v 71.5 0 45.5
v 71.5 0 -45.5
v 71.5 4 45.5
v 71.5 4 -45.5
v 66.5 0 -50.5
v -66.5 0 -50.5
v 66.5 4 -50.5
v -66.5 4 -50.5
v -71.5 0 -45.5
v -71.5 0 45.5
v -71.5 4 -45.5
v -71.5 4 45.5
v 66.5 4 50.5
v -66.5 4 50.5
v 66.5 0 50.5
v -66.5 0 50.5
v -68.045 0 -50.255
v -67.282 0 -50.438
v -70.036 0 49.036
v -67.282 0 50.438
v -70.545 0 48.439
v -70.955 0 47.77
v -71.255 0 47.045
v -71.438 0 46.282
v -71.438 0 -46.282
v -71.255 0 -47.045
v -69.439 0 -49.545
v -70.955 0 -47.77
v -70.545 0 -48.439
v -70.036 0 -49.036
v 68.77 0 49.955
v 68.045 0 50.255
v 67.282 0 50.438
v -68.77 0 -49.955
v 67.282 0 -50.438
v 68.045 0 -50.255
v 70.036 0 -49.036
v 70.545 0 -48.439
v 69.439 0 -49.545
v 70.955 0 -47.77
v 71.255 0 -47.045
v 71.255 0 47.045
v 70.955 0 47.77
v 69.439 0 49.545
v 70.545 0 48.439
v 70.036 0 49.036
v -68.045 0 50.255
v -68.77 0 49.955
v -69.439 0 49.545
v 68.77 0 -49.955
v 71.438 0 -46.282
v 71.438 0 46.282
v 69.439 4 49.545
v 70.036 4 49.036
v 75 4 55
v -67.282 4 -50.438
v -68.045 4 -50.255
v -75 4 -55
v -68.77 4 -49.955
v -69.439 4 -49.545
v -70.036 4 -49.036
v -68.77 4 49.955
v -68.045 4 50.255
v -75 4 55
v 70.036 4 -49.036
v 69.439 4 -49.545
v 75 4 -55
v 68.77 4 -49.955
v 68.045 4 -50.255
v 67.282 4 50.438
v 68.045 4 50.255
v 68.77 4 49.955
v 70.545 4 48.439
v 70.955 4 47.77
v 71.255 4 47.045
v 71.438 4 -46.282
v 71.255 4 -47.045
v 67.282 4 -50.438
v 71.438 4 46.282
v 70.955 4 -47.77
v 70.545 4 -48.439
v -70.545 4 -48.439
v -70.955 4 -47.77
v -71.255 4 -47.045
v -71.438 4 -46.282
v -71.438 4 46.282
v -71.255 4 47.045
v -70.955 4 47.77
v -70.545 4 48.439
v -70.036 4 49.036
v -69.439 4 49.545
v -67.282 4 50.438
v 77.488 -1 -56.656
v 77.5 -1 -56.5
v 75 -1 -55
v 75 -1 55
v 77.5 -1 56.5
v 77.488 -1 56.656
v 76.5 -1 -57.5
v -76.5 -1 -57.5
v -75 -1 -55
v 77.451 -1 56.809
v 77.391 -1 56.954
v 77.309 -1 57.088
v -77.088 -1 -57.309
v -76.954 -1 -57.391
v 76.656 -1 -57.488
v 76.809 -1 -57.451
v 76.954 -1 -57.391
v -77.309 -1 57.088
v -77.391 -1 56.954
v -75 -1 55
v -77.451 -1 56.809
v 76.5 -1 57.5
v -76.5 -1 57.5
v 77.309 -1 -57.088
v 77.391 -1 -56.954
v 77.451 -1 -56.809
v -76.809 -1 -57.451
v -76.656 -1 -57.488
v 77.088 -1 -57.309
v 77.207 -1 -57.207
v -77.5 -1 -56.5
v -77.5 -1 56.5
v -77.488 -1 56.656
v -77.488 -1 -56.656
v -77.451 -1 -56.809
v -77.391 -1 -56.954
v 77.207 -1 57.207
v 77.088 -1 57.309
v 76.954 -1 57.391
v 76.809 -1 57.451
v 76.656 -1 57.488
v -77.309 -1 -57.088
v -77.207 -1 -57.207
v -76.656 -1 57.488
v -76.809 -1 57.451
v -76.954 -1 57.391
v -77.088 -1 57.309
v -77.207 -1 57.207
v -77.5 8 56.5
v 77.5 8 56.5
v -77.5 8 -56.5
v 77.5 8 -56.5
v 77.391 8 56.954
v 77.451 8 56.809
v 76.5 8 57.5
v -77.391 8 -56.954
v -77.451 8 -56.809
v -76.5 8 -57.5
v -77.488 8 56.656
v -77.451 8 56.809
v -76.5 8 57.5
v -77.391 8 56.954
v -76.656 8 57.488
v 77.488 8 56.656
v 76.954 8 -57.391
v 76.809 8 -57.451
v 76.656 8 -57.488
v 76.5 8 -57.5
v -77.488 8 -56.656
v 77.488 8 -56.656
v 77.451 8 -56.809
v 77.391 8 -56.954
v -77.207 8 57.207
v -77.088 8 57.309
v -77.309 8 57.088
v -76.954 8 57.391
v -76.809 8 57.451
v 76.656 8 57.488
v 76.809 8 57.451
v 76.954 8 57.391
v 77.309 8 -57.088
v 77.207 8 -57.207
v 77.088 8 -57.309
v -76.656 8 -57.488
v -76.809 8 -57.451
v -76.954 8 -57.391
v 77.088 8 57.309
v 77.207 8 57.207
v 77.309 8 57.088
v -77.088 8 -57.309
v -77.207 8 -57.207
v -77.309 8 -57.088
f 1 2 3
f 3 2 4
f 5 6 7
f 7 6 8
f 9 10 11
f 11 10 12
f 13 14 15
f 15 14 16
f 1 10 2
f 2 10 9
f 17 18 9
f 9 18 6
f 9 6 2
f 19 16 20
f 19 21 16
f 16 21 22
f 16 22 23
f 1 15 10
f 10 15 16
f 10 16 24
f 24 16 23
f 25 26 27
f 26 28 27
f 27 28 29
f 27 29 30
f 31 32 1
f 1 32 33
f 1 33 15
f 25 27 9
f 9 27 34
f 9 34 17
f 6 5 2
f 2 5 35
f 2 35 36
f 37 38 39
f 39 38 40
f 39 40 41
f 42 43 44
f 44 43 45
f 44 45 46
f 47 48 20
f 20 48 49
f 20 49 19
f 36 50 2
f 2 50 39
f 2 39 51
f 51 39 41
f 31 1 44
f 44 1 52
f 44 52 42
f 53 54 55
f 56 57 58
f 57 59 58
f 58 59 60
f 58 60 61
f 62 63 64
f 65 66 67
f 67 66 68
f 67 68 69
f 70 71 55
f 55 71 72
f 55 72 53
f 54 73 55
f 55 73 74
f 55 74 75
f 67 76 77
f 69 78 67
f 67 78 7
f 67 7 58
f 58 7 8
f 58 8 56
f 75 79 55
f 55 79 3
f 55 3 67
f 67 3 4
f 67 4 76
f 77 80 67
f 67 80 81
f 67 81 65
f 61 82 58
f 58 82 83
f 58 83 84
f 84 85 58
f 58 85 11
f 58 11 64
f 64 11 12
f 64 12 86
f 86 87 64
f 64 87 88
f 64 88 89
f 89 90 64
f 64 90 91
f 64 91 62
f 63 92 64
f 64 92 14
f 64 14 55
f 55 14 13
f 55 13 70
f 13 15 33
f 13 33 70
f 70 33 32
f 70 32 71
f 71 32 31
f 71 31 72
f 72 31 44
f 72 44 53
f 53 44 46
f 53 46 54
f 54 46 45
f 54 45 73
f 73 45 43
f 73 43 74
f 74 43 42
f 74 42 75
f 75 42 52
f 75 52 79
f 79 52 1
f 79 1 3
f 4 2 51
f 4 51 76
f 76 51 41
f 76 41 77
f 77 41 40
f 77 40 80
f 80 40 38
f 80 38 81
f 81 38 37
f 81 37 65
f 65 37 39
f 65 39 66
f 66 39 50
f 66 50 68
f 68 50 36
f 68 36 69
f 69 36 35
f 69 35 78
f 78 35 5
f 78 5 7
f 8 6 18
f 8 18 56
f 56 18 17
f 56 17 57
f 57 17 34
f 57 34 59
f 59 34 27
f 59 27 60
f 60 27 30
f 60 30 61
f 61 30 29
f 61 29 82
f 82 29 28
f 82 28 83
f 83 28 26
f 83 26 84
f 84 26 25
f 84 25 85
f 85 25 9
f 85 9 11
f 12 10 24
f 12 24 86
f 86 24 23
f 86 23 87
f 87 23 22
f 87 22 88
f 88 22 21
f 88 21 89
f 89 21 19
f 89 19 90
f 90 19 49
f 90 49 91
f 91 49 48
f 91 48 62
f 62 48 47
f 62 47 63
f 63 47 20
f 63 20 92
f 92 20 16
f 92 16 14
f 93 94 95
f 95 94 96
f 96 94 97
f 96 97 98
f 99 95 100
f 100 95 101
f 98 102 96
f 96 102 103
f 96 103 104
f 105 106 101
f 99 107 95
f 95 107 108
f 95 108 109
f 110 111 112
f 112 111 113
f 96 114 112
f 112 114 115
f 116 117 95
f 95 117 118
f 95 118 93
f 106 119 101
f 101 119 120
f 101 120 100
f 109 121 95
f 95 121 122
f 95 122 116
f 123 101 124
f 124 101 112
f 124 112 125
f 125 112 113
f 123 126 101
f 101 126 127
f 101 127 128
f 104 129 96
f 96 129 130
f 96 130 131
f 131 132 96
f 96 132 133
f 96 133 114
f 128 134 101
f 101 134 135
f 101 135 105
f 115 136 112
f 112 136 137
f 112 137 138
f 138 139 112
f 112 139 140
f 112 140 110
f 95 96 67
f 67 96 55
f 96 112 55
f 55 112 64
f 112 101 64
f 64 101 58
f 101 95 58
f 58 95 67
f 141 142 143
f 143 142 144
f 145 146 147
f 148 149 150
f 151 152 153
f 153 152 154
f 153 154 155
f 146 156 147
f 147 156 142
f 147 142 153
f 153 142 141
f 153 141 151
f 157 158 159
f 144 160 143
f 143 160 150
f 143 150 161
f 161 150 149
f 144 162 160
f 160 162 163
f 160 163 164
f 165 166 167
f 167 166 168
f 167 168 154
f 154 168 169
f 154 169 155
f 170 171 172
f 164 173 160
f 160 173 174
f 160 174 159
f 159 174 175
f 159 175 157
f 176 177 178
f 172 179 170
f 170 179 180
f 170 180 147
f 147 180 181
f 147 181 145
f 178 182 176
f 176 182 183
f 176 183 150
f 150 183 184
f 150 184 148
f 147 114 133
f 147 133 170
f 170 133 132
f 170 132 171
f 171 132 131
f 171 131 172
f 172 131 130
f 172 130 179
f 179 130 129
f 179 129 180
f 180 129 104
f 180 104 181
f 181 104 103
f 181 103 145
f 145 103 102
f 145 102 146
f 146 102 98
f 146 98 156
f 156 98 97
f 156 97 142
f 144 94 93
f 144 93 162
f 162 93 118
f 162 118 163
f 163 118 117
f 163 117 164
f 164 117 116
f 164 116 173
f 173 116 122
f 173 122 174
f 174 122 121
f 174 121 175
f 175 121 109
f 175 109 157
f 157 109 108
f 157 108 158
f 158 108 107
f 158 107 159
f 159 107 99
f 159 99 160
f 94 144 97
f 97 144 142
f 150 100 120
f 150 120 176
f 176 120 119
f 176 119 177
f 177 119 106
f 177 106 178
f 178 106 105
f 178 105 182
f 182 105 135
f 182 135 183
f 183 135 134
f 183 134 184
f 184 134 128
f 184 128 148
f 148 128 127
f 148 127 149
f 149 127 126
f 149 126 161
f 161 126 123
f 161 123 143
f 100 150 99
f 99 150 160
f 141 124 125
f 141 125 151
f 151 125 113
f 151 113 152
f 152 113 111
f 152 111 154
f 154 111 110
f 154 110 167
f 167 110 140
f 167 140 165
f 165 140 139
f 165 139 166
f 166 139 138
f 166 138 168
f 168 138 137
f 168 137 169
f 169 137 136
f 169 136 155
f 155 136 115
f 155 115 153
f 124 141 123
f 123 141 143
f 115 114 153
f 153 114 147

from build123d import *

# Parameters (mm, degrees)
SKETCH1_W           = 143
SKETCH1_H           = 101
BOSS_EXTRUDE1_DEPTH = 4
SKETCH2_W           = 155
SKETCH2_H           = 115
BOSS_EXTRUDE2_DEPTH = 4
FILLET1_R           = 5
FILLET2_R           = 1
SKETCH3_W           = 150
SKETCH3_H           = 110
BOSS_EXTRUDE3_DEPTH = 5


with BuildPart() as part:
    # Sketch1 → Boss-Extrude1 (new body)
    with BuildSketch(Plane(origin=(0, 0, 0), x_dir=(1, 0, 0), z_dir=(0, 1, 0))):
        Rectangle(SKETCH1_W, SKETCH1_H)
    extrude(amount=BOSS_EXTRUDE1_DEPTH)

    # Sketch2 → Boss-Extrude2 (add)
    with BuildSketch(Plane(origin=(0, 4, 0), x_dir=(1, 0, 0), z_dir=(0, 1, 0))):
        Rectangle(SKETCH2_W, SKETCH2_H)
    extrude(amount=BOSS_EXTRUDE2_DEPTH)

    # Fillet1
    fillet1_edges = [part.edges().sort_by_distance(p)[0] for p in [
        (71.5, 2, 50.5),
        (-71.5, 2, 50.5),
        (-71.5, 2, -50.5),
        (71.5, 2, -50.5),
    ]]
    fillet(fillet1_edges, radius=FILLET1_R)

    # Fillet2
    fillet2_edges = [part.edges().sort_by_distance(p)[0] for p in [
        (-77.5, 6, -57.5),
        (-77.5, 6, 57.5),
        (77.5, 6, 57.5),
        (77.5, 6, -57.5),
    ]]
    fillet(fillet2_edges, radius=FILLET2_R)

    # Sketch3 → Boss-Extrude3 (add)
    with BuildSketch(Plane(origin=(0, 4, 0), x_dir=(-1, 0, 0), z_dir=(0, -1, 0))):
        with BuildLine():
            Line((-76.5, -57.5), (76.5, -57.5))
            ThreePointArc((76.5, -57.5), (77.207106781, -57.207106781), (77.5, -56.5))
            Line((77.5, -56.5), (77.5, 56.5))
            ThreePointArc((77.5, 56.5), (77.207106781, 57.207106781), (76.5, 57.5))
            Line((76.5, 57.5), (-76.5, 57.5))
            ThreePointArc((-76.5, 57.5), (-77.207106781, 57.207106781), (-77.5, 56.5))
            Line((-77.5, 56.5), (-77.5, -56.5))
            ThreePointArc((-77.5, -56.5), (-77.207106781, -57.207106781), (-76.5, -57.5))
        make_face()
        Rectangle(SKETCH3_W, SKETCH3_H, mode=Mode.SUBTRACT)
    extrude(amount=BOSS_EXTRUDE3_DEPTH)


solid = part.part
